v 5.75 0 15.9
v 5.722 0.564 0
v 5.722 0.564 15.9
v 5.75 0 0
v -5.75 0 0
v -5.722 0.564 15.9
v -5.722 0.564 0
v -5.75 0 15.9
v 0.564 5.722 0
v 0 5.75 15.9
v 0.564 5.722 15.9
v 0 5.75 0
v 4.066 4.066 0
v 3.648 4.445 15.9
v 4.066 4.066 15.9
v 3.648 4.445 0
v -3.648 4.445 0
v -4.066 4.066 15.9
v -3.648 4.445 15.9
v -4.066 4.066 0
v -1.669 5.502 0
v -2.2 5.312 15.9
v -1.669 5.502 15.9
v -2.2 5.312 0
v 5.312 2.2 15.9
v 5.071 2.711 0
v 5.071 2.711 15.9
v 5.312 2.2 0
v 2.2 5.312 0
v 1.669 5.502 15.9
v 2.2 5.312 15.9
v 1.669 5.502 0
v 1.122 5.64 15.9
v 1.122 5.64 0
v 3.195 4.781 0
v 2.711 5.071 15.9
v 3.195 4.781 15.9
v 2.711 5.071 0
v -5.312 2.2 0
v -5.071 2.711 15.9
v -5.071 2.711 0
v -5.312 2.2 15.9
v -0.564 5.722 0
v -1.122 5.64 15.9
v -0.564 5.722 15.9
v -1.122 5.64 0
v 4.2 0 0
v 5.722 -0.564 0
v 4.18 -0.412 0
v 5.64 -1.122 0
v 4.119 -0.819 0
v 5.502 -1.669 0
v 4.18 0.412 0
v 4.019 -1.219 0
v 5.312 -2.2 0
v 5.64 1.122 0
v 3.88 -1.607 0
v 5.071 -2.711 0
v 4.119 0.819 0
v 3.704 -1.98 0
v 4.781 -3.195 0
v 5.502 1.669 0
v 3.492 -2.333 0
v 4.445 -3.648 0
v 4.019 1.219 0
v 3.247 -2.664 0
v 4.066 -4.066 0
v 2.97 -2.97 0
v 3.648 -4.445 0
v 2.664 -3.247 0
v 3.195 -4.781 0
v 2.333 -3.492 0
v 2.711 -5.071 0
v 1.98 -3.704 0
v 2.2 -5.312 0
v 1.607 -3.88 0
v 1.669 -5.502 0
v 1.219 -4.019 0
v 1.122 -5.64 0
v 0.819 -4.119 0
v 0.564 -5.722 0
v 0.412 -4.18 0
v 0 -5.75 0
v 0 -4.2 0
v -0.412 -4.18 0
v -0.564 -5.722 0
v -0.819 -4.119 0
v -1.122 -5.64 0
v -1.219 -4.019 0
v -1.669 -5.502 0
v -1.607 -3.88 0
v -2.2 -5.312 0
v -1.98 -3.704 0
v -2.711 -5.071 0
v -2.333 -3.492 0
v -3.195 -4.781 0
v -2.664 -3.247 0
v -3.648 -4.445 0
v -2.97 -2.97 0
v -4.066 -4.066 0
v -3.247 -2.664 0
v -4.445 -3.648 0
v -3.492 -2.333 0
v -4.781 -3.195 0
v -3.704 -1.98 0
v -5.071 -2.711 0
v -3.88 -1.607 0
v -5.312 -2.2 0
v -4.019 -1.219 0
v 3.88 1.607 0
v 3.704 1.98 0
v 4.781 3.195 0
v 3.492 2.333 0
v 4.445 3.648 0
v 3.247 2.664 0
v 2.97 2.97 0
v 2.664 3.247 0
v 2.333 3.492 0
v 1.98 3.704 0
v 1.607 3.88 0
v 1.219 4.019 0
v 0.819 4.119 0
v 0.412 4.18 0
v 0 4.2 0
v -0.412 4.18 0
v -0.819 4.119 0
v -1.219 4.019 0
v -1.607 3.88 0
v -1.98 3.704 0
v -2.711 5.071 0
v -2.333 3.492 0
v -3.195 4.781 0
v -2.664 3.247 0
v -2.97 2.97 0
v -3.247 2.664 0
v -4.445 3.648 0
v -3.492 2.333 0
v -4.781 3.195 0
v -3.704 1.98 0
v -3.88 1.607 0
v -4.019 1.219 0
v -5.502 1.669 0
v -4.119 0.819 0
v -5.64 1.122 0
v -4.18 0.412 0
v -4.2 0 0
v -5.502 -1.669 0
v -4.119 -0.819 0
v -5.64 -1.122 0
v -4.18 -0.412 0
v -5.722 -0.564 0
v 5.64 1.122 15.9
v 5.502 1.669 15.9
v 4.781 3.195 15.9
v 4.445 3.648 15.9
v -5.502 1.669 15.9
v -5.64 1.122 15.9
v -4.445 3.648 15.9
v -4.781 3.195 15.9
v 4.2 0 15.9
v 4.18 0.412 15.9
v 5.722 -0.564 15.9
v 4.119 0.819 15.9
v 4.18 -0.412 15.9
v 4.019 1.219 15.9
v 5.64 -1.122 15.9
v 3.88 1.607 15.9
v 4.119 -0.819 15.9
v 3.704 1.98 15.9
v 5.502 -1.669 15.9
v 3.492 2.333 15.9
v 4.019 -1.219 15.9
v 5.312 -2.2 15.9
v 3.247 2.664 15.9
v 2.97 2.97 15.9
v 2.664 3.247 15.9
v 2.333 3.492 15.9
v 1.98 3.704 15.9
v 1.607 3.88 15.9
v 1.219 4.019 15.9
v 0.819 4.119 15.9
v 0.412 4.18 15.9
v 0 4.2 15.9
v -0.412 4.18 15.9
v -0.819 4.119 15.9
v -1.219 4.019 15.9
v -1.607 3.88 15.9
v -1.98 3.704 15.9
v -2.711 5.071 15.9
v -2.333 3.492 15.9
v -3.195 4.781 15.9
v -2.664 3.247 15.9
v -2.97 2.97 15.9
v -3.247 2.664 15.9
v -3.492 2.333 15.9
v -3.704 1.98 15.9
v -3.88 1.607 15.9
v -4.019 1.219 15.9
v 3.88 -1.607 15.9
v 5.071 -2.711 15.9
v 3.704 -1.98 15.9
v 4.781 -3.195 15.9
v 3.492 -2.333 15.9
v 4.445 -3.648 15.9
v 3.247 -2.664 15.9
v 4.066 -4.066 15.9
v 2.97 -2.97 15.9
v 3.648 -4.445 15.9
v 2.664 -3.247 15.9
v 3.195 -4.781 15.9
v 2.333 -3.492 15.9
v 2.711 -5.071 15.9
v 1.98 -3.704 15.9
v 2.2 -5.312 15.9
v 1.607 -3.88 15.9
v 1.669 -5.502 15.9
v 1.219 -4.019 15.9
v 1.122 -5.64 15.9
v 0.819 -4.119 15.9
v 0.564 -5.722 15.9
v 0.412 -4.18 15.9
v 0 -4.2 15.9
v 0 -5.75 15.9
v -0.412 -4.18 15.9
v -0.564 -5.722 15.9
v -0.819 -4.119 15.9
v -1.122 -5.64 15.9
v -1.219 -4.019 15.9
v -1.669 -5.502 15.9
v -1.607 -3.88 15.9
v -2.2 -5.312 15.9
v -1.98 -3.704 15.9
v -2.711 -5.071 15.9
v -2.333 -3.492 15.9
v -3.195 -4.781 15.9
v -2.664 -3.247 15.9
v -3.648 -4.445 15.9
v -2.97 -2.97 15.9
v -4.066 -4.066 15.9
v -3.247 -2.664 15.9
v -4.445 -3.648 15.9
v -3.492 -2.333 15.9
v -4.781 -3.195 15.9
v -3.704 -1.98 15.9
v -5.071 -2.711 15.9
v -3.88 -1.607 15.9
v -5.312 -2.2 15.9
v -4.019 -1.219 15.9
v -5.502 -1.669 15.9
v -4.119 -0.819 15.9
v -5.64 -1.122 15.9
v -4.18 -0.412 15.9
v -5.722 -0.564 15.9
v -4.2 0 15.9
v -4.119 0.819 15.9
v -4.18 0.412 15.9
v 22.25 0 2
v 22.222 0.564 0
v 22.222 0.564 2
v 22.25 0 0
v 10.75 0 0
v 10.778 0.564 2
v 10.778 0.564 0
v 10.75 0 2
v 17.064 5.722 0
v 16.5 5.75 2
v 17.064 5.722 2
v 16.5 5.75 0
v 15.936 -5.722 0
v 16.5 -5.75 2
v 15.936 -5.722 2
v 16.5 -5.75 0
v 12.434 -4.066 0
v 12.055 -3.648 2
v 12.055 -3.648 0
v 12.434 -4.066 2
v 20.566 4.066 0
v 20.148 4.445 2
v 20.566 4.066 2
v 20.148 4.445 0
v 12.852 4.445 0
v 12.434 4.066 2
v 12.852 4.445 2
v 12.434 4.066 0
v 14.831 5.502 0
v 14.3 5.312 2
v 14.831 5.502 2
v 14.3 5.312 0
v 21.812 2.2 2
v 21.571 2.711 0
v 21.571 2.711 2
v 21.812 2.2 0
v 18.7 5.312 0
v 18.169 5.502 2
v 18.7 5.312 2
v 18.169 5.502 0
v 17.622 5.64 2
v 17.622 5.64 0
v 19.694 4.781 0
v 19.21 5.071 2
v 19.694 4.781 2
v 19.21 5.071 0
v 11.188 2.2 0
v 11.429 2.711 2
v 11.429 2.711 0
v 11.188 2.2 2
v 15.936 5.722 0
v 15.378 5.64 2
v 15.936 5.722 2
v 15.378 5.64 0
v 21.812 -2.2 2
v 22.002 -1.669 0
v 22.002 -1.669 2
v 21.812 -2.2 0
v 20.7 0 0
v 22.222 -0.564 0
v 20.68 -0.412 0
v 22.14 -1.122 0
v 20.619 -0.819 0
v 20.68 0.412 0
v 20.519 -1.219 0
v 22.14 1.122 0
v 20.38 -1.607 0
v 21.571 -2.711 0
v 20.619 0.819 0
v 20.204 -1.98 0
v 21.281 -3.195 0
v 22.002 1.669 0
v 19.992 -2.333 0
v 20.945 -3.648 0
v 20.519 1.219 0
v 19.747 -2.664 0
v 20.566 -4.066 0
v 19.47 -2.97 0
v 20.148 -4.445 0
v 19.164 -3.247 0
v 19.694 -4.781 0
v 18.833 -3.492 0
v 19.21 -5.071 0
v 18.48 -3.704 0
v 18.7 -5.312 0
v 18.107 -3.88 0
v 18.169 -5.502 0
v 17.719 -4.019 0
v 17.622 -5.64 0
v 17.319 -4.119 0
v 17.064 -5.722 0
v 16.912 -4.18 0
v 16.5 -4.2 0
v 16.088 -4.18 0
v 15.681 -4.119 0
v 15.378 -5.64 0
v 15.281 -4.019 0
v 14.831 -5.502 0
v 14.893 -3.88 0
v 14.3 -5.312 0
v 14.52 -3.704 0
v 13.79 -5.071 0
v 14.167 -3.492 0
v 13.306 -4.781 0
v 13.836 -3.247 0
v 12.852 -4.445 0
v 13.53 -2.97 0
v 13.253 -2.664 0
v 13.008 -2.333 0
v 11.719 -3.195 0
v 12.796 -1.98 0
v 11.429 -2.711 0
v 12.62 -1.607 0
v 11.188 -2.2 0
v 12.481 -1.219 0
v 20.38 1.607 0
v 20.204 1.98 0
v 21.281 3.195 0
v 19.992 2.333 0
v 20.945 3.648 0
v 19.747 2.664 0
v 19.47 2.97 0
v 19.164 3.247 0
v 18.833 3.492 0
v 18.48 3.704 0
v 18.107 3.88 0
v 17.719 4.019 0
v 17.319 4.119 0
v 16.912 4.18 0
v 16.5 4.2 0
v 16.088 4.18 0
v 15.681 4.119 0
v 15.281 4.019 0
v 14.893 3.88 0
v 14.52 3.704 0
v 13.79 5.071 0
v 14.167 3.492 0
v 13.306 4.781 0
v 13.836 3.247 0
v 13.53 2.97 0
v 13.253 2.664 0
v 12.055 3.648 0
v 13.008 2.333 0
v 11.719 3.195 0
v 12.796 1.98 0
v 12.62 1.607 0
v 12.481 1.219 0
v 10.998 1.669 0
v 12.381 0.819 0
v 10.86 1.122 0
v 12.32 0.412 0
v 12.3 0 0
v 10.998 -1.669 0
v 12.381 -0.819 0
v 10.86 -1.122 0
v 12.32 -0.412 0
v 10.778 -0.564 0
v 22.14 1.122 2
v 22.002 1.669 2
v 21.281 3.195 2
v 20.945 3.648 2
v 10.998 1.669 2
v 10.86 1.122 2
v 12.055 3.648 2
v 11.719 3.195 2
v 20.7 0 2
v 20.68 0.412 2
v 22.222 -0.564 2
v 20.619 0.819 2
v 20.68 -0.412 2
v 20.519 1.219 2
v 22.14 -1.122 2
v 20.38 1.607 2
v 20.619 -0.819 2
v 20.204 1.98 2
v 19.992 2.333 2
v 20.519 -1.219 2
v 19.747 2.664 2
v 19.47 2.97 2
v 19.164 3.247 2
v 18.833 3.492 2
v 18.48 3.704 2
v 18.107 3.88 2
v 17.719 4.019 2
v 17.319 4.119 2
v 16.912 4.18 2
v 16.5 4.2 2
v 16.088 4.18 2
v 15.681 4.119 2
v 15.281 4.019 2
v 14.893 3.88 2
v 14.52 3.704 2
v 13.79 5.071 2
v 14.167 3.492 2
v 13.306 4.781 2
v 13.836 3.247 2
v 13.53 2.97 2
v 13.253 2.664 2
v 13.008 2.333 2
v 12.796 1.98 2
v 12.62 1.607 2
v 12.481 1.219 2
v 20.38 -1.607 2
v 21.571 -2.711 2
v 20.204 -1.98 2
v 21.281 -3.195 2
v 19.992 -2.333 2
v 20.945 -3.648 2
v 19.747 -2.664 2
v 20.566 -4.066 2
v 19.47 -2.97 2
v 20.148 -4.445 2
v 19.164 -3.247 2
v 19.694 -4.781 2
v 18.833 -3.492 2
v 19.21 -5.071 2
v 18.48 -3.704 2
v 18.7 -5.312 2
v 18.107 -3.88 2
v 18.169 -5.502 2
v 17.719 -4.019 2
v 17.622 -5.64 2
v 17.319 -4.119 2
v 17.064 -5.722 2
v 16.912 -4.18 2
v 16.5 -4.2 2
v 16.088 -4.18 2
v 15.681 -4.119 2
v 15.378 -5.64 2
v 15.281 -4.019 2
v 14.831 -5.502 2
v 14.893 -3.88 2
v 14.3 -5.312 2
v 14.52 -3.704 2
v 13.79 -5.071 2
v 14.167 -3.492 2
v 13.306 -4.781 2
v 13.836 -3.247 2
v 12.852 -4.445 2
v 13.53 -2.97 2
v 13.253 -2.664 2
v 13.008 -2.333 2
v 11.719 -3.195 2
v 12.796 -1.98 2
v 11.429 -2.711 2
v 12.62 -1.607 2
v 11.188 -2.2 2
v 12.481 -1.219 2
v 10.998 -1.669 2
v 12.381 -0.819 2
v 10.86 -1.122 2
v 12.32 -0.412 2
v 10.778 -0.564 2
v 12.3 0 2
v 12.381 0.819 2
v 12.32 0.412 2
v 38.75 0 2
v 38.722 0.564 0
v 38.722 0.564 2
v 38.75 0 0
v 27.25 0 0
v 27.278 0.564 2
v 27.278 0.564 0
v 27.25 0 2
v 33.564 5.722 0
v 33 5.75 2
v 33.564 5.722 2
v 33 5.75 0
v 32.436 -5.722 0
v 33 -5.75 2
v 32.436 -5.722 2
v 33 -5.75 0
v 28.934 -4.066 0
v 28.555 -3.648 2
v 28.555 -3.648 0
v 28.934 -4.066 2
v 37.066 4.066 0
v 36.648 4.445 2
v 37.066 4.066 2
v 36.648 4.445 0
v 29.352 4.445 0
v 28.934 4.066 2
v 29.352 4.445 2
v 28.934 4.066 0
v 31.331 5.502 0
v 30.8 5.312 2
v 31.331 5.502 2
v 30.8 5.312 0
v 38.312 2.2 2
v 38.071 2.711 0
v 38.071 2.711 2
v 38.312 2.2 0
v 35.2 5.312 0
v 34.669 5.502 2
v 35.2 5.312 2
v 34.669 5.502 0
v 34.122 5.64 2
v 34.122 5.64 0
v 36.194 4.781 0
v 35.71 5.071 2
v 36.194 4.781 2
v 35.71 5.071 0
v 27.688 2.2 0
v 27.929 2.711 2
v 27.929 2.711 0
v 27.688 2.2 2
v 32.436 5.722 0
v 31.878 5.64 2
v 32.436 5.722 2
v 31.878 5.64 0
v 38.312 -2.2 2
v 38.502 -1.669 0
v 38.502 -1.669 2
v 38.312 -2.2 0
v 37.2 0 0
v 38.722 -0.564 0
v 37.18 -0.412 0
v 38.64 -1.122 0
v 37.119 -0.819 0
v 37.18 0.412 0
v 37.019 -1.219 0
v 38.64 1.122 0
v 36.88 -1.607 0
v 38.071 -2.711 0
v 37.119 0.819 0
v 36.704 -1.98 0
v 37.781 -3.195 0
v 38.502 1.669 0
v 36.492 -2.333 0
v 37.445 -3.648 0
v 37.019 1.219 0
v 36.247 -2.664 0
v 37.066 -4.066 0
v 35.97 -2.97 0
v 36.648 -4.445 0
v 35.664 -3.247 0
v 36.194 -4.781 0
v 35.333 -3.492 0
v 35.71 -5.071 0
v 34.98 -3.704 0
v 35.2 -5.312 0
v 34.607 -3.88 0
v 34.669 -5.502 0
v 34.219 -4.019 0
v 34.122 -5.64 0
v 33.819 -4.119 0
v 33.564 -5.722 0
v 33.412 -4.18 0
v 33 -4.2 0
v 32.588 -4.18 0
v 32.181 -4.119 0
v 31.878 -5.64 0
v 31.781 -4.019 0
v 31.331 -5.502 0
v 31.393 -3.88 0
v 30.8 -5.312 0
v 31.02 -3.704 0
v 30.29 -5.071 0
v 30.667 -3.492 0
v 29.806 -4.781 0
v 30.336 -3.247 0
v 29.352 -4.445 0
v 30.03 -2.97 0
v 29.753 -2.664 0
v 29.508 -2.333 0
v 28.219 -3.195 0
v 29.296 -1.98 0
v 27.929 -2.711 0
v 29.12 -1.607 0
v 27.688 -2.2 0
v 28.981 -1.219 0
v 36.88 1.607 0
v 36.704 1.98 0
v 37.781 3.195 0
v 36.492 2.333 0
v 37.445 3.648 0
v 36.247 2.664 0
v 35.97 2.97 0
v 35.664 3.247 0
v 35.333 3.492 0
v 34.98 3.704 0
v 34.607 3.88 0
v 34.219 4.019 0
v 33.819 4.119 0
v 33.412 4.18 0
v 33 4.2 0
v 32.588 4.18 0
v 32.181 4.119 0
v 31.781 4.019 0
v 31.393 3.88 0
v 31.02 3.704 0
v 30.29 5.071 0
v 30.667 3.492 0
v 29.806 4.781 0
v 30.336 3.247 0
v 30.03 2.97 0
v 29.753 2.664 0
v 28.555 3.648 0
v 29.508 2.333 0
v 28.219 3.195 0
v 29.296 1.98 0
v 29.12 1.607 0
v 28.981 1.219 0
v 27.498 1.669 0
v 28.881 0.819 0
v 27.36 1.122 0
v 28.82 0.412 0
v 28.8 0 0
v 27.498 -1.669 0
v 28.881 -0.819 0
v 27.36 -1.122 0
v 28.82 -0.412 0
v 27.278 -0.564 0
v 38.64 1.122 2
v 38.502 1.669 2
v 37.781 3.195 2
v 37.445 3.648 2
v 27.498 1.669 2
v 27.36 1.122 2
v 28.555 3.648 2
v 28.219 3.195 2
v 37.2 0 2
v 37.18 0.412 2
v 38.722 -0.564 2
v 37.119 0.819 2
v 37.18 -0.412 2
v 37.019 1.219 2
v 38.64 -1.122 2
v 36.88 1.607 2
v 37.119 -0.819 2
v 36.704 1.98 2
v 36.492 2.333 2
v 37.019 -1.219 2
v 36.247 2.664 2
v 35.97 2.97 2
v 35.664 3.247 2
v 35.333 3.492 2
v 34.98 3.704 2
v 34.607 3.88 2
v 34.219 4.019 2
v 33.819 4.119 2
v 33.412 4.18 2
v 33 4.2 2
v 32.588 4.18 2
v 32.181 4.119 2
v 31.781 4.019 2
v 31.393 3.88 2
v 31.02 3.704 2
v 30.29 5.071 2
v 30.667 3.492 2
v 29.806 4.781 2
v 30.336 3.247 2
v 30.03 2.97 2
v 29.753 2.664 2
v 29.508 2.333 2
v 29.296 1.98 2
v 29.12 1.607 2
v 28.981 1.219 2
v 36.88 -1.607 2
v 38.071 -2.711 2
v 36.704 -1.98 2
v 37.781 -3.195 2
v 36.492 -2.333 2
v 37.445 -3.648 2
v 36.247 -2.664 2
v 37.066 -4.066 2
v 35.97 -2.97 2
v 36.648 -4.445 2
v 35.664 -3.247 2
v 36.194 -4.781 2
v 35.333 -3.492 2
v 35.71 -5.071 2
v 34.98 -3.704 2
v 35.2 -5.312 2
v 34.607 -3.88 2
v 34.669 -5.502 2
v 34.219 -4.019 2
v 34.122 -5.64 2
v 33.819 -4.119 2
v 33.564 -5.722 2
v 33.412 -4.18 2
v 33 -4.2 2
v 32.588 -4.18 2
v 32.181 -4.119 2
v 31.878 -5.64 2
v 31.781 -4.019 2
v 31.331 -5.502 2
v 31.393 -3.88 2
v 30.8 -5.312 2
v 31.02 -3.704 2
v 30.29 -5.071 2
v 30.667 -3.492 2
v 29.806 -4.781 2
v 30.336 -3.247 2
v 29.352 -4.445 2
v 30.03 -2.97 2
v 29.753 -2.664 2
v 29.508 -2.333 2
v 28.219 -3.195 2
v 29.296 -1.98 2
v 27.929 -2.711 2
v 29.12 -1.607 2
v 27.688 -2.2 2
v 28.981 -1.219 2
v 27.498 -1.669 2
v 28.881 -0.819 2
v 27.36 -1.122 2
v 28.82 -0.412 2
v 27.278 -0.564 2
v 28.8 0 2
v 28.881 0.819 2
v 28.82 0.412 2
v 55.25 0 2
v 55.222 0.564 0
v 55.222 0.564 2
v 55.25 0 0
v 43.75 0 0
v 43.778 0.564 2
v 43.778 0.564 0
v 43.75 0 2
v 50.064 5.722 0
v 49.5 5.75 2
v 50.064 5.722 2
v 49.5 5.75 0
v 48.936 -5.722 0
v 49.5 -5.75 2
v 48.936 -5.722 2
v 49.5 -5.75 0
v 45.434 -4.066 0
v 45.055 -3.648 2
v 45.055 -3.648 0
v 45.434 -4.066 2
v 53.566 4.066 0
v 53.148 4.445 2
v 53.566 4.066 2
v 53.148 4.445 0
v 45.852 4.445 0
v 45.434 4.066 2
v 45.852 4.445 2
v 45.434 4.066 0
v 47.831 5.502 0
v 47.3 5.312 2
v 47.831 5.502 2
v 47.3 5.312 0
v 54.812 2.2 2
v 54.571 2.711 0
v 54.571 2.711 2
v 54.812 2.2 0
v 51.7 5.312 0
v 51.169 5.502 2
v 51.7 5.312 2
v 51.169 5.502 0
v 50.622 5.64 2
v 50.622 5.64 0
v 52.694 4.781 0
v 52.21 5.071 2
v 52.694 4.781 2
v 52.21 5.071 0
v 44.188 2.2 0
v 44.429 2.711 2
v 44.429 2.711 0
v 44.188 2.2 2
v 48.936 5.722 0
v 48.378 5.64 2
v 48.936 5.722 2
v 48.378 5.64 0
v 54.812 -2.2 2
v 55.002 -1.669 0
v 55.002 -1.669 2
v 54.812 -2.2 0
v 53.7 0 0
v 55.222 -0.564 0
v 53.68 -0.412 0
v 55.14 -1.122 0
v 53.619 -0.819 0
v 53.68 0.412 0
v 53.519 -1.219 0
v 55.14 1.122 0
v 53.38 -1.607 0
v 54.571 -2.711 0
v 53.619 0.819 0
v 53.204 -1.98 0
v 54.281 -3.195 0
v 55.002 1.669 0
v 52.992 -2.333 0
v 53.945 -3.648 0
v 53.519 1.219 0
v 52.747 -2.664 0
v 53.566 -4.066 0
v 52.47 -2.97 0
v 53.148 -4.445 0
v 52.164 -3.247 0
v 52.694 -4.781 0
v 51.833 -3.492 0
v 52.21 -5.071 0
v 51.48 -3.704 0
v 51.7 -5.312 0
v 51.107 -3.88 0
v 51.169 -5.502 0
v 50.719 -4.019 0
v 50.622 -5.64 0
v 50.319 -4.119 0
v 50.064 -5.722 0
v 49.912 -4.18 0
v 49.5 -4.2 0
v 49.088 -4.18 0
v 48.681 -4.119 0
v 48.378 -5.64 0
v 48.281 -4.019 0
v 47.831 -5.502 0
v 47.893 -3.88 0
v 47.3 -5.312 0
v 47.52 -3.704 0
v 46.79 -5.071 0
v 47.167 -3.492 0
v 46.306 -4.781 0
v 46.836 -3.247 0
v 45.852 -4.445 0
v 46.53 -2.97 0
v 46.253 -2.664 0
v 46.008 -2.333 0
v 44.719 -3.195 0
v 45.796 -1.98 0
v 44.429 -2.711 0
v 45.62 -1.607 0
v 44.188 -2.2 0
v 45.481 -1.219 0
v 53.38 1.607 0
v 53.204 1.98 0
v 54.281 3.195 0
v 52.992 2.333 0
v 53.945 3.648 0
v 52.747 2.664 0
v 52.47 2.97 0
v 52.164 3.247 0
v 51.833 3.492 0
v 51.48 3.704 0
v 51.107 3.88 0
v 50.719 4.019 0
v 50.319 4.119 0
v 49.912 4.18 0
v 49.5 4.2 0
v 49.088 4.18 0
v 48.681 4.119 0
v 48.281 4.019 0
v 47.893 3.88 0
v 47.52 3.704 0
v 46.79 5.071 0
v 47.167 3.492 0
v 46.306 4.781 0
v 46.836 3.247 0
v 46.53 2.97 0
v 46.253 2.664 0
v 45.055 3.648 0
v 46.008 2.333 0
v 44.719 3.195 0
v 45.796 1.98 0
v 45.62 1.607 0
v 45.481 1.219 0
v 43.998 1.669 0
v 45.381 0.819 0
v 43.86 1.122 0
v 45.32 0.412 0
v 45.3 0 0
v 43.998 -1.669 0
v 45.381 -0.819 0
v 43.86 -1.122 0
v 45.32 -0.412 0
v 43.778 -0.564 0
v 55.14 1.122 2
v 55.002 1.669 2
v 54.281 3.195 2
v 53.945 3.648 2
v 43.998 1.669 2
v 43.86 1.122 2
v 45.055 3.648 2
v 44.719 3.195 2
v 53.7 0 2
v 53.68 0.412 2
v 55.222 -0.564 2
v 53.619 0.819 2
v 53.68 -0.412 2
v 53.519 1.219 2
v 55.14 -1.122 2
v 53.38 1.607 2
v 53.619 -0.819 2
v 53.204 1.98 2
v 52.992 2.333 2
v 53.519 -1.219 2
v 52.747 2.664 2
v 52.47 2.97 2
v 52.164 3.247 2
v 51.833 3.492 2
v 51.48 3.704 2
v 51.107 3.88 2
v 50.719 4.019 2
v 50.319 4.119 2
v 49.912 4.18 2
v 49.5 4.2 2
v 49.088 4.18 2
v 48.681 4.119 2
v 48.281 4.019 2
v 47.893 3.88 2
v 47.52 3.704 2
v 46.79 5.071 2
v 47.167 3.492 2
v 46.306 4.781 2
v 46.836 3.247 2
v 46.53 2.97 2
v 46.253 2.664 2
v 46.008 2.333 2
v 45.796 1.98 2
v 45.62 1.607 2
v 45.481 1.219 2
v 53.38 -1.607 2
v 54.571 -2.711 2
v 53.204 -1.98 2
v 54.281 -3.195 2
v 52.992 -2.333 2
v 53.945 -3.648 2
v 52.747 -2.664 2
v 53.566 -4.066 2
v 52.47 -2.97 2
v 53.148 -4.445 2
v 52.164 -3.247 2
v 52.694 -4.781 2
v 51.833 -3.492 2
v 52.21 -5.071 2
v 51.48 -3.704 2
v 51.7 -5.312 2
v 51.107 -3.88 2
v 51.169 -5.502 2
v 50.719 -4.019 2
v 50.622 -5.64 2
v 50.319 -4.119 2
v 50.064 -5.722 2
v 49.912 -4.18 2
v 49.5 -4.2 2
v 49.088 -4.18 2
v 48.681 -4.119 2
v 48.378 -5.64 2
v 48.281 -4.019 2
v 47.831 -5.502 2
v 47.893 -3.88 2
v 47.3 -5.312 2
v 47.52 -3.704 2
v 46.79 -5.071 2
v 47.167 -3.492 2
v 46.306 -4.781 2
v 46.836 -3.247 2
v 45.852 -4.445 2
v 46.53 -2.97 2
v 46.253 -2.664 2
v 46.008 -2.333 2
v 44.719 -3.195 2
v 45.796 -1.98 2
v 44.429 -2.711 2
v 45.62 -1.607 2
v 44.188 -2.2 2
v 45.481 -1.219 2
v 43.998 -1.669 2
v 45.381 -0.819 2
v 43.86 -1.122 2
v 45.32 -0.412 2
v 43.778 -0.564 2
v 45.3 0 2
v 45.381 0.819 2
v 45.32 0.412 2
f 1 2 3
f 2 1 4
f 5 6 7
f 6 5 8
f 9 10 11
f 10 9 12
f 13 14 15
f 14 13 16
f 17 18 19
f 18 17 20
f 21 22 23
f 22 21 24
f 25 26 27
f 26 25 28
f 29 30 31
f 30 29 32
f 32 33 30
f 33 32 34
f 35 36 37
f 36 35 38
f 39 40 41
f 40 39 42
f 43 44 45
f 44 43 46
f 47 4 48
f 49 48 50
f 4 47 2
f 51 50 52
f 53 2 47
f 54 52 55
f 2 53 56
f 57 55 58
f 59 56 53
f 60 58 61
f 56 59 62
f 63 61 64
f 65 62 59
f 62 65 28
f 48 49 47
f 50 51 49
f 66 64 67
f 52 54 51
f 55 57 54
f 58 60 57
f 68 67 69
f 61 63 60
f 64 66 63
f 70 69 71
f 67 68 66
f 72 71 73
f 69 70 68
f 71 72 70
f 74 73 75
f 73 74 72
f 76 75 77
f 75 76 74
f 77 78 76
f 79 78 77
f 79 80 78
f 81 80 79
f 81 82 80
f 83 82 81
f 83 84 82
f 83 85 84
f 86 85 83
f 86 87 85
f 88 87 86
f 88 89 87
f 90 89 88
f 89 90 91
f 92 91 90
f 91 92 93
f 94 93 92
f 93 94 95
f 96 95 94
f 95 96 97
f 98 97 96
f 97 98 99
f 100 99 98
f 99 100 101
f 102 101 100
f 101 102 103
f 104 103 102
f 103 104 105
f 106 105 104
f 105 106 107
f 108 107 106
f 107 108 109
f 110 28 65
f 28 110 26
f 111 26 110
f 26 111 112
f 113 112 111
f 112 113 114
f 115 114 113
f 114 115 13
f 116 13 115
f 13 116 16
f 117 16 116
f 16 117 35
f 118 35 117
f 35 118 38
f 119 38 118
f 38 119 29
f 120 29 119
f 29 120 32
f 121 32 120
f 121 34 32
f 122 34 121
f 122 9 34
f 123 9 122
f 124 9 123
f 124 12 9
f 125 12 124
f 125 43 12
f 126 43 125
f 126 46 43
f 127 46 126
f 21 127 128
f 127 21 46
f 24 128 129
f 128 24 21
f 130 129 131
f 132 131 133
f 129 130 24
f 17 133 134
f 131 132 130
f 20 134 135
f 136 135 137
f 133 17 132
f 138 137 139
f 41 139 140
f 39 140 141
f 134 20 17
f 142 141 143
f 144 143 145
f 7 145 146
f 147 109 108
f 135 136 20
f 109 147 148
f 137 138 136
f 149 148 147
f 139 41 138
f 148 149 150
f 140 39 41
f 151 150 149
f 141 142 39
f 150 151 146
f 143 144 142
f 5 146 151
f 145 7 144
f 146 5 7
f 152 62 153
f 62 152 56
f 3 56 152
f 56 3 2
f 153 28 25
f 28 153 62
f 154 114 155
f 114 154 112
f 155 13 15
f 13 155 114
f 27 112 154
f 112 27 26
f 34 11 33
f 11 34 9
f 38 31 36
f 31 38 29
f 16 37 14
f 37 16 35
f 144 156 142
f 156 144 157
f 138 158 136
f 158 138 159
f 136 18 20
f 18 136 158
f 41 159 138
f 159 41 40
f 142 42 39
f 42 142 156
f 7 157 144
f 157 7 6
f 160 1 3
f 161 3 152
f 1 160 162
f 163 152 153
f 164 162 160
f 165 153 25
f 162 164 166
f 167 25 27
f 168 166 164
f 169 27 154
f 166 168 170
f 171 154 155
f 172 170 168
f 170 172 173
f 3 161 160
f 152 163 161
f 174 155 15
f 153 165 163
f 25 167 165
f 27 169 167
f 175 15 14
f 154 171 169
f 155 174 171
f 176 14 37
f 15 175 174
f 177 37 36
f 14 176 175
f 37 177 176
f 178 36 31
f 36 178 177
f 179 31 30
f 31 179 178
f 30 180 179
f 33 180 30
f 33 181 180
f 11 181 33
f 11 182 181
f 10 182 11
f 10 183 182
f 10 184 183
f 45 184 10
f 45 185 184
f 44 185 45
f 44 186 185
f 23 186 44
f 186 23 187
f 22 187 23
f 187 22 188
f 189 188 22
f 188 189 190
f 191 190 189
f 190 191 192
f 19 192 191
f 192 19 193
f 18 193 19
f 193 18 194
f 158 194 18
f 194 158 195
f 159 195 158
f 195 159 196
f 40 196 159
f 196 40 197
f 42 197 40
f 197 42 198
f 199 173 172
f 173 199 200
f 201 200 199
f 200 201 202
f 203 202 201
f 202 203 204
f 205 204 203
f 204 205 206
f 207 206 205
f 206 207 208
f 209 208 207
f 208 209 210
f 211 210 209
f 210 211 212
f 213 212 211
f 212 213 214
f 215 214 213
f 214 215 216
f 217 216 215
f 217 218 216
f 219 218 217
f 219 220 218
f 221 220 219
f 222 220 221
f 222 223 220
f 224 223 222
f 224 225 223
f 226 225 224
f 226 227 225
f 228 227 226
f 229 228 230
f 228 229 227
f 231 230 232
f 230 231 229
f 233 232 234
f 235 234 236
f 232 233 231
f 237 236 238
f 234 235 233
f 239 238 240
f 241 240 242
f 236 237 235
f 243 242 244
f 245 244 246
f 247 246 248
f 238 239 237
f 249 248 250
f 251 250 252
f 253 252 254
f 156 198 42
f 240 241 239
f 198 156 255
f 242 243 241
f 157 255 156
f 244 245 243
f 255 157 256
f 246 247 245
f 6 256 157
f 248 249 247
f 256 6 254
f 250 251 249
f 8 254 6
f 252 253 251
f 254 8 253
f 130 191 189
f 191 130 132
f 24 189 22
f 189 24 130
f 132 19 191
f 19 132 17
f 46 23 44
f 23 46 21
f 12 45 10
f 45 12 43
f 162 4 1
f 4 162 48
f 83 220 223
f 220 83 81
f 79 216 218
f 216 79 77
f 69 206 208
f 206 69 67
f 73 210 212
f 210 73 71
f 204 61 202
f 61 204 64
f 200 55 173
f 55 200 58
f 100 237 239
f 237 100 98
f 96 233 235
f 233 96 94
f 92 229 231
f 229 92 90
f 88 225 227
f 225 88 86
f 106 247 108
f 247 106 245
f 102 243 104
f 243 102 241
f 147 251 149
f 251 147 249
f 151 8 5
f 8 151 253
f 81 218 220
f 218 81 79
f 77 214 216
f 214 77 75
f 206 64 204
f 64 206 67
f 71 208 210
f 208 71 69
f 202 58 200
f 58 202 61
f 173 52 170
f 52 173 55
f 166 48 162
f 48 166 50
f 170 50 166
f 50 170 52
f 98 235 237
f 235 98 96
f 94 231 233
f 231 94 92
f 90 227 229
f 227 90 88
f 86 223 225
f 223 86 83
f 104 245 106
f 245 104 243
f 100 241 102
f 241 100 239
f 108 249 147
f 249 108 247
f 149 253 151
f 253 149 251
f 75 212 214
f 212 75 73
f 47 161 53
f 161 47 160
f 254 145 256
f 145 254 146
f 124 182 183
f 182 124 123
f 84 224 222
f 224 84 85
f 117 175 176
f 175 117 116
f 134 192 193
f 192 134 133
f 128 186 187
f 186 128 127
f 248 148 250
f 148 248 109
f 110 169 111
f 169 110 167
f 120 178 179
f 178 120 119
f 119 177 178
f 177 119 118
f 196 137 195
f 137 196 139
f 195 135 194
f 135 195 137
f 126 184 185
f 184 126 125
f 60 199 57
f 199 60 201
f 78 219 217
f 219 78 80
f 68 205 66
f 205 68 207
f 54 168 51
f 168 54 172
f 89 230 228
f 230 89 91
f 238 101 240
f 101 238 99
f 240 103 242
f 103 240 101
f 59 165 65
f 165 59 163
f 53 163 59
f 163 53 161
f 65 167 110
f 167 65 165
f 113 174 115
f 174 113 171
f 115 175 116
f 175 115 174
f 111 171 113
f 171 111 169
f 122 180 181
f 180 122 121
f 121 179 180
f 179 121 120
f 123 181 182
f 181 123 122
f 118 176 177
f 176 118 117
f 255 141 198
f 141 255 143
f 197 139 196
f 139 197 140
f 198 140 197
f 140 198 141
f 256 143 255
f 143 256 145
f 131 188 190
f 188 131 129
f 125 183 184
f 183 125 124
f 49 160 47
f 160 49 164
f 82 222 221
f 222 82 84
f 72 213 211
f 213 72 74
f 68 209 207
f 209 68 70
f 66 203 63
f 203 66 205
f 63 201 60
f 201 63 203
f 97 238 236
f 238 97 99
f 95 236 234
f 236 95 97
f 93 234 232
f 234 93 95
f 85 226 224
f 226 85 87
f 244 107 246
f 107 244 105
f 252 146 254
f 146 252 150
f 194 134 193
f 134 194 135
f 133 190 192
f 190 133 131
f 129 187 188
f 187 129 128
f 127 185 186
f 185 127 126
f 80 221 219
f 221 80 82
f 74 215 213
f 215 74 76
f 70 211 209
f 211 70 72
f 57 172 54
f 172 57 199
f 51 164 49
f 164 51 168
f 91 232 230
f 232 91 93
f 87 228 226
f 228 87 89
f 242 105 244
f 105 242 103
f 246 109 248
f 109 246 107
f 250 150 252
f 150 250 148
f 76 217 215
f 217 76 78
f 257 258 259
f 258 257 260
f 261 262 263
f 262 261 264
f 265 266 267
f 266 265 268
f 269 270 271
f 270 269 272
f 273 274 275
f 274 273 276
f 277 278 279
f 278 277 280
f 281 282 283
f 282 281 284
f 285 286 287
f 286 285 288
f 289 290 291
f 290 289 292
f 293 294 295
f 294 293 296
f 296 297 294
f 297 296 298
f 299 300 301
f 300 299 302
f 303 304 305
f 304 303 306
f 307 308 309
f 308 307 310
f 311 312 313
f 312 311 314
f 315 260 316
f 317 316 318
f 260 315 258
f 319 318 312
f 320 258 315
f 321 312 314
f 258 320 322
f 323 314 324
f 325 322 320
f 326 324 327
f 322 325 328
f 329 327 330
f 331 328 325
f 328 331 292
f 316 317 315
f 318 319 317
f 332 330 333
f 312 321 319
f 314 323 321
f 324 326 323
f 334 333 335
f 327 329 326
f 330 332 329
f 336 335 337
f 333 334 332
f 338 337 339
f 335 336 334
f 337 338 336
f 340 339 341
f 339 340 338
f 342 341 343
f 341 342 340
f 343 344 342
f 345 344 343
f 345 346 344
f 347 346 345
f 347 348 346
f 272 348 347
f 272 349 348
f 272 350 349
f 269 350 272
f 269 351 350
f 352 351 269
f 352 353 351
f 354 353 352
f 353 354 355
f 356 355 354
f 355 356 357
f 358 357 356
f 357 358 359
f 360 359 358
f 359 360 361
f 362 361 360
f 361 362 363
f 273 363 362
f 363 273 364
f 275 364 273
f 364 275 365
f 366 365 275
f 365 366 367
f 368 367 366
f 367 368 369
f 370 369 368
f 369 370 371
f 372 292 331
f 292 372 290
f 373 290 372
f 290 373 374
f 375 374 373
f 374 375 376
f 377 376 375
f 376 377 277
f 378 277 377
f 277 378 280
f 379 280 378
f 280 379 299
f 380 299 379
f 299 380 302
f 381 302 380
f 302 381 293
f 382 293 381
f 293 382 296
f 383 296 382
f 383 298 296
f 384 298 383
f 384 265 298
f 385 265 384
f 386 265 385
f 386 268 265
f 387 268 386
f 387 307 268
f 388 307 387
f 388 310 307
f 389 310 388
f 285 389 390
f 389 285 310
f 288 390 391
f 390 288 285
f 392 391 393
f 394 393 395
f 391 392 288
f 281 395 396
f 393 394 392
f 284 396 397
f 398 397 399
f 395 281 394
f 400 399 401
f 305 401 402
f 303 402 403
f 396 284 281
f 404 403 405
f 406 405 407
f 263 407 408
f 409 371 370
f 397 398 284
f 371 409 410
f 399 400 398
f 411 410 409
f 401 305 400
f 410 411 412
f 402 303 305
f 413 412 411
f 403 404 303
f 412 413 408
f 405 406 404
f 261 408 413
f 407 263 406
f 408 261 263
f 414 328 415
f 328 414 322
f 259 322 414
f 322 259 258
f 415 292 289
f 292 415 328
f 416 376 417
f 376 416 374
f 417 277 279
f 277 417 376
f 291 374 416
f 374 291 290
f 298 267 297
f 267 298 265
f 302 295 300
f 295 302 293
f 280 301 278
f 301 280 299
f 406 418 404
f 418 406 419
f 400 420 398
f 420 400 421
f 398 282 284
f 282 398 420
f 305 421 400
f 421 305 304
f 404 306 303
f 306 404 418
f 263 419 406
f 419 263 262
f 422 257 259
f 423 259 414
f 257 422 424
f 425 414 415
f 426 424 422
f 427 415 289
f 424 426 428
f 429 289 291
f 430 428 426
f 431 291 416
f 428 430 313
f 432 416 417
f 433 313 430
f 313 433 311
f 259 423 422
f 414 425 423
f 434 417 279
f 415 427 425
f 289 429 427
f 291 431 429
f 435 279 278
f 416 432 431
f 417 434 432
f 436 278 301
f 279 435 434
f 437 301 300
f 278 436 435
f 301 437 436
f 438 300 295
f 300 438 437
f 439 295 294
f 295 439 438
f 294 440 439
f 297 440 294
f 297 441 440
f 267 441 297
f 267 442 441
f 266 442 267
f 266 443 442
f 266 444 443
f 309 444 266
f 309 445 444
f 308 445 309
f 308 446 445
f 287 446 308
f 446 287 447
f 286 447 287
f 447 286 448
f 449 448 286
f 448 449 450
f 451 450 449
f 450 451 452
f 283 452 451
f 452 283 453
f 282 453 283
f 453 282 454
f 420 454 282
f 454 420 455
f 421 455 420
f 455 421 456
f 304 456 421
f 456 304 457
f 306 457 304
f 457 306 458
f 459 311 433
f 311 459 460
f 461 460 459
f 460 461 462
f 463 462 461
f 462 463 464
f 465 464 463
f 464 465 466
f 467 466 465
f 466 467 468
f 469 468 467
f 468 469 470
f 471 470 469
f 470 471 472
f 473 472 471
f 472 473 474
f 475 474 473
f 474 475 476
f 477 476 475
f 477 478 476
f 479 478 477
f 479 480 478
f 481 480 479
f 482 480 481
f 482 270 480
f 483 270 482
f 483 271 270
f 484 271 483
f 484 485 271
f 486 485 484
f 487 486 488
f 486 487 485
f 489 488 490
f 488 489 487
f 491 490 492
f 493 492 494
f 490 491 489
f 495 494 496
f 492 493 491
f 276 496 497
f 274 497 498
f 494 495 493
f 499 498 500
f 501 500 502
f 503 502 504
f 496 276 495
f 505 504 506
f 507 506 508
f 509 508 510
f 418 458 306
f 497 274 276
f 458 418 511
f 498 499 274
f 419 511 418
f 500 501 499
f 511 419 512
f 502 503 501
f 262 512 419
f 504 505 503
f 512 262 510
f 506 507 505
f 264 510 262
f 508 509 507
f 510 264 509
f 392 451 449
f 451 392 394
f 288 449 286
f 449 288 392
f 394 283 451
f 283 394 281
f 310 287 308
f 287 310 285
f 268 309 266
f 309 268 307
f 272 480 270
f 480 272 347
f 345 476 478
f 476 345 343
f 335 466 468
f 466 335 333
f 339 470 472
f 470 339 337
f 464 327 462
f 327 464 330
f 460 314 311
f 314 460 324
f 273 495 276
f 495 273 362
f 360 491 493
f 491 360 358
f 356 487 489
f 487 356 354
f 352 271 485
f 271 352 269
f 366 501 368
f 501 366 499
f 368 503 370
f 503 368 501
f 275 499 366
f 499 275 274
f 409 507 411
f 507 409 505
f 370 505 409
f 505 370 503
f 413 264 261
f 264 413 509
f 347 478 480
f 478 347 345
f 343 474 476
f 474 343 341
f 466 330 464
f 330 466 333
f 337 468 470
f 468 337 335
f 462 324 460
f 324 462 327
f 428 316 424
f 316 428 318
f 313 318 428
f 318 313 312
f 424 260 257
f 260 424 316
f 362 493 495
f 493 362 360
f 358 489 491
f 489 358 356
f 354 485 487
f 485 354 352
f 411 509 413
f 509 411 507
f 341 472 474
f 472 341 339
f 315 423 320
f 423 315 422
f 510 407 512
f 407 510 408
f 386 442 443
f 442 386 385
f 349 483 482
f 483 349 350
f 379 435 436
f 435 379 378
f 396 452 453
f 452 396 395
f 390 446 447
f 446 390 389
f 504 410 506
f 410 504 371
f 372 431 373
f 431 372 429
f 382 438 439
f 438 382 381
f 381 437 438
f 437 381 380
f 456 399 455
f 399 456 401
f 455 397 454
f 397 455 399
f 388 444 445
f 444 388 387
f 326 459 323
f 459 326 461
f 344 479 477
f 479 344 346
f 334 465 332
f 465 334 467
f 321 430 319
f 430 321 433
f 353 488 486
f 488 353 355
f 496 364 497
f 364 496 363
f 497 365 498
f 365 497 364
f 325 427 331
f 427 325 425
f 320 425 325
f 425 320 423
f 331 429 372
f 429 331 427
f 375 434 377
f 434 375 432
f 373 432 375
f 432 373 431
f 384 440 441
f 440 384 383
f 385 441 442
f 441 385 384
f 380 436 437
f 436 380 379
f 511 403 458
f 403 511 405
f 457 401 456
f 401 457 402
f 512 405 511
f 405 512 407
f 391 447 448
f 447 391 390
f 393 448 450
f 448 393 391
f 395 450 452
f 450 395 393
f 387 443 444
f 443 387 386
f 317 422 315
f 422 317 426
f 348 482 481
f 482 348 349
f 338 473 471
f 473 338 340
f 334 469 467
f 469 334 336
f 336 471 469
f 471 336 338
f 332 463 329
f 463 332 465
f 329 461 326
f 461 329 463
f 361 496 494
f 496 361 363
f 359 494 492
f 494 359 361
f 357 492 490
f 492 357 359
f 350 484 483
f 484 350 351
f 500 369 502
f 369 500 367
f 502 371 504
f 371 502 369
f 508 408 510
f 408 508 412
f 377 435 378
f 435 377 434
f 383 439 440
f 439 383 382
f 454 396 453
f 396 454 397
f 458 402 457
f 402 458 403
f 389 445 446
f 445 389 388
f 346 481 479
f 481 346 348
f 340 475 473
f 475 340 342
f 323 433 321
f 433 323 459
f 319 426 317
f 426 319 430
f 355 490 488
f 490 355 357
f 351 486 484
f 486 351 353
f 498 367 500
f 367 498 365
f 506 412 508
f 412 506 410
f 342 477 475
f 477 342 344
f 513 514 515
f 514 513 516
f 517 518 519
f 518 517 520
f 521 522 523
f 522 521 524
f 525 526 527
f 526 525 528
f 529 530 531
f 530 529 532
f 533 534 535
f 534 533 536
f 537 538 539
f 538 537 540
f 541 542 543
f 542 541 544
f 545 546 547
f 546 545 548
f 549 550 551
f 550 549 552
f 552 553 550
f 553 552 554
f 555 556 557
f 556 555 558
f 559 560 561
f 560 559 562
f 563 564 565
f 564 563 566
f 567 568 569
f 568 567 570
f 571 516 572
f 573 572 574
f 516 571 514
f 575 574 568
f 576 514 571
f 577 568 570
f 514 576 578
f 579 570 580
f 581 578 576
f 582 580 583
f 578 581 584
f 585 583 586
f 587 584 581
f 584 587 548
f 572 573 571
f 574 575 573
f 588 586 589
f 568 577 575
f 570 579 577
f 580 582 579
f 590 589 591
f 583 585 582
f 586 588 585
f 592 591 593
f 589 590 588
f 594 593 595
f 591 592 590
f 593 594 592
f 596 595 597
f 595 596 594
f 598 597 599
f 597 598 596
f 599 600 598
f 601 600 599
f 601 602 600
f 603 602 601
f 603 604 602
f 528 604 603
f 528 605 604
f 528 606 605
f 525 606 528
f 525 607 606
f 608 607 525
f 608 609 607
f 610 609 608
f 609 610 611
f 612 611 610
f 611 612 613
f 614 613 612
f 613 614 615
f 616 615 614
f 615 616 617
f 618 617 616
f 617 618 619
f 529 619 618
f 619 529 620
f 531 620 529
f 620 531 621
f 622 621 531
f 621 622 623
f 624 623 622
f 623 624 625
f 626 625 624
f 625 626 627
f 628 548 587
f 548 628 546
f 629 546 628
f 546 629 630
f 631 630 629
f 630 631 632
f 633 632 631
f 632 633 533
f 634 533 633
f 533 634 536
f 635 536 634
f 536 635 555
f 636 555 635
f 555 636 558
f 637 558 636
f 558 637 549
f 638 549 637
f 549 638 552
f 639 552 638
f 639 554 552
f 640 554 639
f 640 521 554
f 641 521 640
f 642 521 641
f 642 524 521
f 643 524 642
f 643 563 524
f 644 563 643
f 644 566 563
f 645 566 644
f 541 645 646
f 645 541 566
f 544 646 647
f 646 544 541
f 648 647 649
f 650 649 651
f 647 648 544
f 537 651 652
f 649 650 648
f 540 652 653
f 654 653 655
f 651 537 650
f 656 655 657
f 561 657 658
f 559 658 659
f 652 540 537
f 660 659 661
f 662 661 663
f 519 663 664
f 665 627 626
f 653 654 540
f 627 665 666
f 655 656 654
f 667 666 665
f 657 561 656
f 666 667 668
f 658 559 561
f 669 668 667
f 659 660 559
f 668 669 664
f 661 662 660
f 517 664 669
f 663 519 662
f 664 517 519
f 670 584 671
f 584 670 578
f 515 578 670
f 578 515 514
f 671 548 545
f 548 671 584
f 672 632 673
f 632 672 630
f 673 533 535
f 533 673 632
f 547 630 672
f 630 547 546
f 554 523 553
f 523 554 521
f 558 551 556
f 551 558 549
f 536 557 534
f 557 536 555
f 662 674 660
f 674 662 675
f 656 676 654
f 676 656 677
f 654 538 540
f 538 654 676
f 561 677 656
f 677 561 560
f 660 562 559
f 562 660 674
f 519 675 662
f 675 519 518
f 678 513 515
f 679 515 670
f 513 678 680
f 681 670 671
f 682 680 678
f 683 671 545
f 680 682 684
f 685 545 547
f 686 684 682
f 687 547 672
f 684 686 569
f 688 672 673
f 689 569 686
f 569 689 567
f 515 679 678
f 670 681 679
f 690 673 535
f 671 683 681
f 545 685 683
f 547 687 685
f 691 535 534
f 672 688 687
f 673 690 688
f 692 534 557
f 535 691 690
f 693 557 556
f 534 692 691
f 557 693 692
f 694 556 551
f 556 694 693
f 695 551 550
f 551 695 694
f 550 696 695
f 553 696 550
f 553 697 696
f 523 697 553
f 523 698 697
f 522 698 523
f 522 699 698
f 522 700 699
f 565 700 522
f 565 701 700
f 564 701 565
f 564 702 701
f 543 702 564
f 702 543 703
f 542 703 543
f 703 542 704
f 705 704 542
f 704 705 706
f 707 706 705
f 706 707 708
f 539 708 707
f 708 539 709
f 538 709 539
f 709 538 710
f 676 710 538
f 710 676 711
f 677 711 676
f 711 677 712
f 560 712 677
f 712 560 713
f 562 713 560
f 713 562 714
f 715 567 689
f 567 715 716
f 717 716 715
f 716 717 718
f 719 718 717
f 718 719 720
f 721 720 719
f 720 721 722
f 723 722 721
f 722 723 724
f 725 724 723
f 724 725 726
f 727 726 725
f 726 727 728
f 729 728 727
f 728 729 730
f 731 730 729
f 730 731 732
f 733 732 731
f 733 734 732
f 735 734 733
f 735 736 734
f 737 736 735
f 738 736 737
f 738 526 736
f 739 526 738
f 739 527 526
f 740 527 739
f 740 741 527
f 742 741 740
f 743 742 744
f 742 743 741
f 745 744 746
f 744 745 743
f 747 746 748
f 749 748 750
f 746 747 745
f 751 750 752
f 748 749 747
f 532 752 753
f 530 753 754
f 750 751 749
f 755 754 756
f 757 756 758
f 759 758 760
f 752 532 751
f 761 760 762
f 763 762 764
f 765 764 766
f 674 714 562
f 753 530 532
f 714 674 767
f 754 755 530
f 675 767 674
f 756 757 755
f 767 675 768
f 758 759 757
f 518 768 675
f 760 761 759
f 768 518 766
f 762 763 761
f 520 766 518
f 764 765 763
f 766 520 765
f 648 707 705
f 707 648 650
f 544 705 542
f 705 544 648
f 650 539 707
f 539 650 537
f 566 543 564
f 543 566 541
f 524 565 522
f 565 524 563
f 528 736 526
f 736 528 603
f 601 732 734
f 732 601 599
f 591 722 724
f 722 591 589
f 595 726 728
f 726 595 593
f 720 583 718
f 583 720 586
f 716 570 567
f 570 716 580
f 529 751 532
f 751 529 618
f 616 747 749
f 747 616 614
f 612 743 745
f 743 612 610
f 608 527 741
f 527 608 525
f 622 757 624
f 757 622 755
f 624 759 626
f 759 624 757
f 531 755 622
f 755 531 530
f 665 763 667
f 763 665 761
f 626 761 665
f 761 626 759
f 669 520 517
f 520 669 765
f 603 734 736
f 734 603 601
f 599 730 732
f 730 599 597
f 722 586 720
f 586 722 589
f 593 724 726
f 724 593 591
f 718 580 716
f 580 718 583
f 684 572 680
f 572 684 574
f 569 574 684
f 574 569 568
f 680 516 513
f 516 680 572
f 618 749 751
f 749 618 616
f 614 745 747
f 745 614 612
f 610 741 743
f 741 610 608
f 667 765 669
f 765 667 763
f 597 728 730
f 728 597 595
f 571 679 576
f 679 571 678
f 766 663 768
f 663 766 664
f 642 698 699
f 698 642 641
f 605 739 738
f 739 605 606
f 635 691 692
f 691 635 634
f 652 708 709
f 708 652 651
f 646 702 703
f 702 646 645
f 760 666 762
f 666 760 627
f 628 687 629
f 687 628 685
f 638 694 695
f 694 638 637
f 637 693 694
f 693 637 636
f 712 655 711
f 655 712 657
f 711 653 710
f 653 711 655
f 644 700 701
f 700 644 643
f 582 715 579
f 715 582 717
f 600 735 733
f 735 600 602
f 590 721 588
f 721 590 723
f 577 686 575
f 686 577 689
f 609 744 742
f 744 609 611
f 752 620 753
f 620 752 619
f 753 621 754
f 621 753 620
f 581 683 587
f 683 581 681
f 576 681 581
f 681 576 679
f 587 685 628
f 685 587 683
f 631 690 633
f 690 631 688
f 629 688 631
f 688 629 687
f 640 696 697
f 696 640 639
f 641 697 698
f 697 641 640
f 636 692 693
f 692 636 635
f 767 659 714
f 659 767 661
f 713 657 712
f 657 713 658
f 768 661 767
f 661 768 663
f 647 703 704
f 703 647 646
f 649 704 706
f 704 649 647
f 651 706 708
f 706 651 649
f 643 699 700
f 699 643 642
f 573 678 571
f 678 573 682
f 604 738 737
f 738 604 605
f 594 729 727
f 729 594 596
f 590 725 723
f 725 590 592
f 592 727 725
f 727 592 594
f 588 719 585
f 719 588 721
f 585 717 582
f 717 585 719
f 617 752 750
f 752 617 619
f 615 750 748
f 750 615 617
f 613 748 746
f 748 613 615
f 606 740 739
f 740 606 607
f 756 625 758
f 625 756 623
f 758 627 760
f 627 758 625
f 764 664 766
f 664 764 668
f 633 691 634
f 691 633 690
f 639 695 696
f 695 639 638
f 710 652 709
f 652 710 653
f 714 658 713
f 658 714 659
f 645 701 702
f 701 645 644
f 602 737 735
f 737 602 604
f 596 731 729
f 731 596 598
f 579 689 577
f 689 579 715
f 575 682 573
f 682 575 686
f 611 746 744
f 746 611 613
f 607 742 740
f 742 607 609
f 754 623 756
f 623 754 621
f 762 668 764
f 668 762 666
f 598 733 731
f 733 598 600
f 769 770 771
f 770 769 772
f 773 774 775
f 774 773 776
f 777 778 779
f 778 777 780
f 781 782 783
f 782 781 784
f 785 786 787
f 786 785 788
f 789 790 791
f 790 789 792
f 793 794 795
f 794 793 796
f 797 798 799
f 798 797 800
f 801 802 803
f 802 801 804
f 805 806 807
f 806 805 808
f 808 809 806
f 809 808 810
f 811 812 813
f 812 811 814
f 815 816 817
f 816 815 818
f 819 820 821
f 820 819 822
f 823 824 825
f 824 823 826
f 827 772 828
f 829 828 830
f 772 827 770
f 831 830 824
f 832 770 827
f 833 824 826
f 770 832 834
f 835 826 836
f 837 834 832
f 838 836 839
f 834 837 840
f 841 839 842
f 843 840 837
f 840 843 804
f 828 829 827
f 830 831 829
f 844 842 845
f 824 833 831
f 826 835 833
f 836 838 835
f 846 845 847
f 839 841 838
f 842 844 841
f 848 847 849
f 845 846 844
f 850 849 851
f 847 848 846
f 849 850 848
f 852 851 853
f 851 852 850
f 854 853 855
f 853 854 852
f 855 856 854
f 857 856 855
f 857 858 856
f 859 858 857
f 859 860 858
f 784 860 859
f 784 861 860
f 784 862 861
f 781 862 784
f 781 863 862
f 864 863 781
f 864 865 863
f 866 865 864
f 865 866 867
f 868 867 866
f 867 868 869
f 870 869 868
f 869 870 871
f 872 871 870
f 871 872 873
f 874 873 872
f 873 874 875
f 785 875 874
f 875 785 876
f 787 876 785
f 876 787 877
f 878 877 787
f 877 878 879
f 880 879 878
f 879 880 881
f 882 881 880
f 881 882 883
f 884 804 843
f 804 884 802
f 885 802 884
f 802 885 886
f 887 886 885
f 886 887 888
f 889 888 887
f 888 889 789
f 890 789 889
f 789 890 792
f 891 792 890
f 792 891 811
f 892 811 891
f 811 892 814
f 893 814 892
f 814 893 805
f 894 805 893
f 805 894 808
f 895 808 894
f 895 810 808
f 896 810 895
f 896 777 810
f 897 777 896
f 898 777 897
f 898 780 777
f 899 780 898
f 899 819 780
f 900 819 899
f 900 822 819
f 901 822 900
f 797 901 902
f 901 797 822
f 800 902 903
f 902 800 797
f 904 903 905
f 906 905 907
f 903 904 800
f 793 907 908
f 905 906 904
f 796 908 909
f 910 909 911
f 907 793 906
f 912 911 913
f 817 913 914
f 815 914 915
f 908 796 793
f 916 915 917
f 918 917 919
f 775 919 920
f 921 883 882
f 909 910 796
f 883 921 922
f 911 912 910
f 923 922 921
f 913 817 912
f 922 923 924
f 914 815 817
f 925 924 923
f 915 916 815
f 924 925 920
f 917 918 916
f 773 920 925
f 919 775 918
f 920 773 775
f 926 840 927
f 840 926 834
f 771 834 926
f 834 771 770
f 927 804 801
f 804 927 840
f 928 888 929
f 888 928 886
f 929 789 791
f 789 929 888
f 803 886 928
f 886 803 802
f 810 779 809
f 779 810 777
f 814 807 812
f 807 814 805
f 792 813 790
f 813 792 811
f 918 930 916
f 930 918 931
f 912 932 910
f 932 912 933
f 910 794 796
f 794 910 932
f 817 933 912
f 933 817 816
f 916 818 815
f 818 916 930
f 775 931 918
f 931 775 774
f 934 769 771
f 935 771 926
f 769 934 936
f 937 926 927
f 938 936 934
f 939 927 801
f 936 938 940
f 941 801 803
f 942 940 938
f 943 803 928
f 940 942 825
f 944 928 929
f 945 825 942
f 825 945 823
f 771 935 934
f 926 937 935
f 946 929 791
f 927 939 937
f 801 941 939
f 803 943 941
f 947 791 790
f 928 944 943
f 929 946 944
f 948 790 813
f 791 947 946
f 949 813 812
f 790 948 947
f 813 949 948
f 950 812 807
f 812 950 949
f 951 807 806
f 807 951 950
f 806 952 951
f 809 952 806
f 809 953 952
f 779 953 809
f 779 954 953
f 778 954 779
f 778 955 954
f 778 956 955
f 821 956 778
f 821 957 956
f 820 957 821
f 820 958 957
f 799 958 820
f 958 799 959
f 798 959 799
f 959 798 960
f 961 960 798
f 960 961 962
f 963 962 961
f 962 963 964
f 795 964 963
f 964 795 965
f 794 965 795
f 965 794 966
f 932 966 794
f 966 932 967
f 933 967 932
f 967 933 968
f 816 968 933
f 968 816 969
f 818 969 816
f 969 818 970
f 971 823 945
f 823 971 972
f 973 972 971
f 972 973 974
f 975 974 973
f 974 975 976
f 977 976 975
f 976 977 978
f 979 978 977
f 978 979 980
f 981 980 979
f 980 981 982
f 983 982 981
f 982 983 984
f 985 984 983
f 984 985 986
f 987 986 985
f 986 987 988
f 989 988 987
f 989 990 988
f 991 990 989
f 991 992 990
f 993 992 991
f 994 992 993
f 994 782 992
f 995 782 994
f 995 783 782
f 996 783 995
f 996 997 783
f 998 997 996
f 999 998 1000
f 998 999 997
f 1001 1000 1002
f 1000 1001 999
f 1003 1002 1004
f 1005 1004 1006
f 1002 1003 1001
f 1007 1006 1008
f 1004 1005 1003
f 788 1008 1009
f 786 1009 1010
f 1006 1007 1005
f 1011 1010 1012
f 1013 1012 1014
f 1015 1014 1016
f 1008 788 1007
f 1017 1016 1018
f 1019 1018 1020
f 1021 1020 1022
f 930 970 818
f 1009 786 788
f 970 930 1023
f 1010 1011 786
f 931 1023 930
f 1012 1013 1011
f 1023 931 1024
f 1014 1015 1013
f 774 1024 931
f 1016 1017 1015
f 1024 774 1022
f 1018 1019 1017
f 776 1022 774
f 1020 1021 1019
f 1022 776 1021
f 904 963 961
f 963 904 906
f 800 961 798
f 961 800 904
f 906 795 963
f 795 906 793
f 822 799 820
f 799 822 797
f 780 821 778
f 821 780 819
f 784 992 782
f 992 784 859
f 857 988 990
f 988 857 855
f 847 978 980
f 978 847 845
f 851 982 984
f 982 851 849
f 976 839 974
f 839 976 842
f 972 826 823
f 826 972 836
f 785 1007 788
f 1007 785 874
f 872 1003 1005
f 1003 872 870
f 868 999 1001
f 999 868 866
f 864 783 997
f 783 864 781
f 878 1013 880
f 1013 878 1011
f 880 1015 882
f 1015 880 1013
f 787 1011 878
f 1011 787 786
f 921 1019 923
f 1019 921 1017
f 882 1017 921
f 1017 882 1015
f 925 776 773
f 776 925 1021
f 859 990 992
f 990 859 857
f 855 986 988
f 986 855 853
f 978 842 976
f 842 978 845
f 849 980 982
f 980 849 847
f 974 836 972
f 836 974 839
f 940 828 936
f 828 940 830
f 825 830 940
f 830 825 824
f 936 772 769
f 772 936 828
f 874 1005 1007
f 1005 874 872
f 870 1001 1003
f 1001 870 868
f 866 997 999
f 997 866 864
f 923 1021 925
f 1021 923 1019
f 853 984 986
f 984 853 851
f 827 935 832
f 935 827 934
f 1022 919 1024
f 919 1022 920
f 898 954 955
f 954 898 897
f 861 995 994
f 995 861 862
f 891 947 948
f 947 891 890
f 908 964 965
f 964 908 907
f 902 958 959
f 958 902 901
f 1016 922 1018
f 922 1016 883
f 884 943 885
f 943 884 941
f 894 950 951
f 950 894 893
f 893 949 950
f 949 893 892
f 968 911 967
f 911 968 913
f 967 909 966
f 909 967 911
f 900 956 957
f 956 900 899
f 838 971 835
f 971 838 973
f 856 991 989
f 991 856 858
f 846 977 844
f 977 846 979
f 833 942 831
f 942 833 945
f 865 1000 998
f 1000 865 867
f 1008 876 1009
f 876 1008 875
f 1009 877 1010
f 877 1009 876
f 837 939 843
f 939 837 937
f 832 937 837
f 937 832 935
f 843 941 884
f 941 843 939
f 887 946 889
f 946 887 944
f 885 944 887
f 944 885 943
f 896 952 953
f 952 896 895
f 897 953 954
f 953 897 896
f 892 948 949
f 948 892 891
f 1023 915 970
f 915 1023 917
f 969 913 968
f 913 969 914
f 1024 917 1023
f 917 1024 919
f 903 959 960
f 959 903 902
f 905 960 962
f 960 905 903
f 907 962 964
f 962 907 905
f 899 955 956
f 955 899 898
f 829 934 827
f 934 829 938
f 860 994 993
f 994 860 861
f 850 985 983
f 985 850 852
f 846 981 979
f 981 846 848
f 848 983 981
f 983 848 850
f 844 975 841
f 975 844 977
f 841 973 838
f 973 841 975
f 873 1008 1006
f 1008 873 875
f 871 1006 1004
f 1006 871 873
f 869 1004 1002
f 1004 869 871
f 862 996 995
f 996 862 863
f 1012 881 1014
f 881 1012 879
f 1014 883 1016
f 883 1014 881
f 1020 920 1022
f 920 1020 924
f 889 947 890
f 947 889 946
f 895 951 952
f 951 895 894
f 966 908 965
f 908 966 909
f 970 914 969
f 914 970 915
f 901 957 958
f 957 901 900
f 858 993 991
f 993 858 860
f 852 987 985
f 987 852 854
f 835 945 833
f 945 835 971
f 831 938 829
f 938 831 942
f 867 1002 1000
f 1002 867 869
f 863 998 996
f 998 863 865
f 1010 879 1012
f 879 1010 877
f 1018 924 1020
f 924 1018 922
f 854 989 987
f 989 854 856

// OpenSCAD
// ==========================================
// Proyecto: piezas3D – Puntero láser estelar
// Componente: Separador de azimut y arandelas de contacto
// Descripción: Separador entre los aros interiores de los dos 608 de azimut (0,1 mm más corto que
//              el resalte de la base, para precargarlos) y 3 arandelas de contacto que apoyan solo
//              en el aro interior: entre la plataforma y el 608 superior, entre la autoblocante y
//              el 608 inferior, y en el eje de altura del lado del cable.
// ==========================================

// --- PARÁMETROS Y CONSTANTES ---
include <puntero_laser_parametros.scad>

/* [Hidden] */
d_ext_separador = d_contacto_aro;
d_agujero_m8 = rod608_d_int + holgura_perno_m8;
separacion_piezas = 5;
cantidad_arandelas = 3;

// --- MÓDULOS PRINCIPALES Y ENSAMBLAJE ---
ensamblaje_principal();

module ensamblaje_principal() {
    pieza_separador_azimut();
}

module pieza_separador_azimut() {
    separador();
    for (i = [1:cantidad_arandelas])
        translate([i*(d_ext_separador + separacion_piezas), 0, 0]) arandela_contacto();
}

module separador() {
    difference() {
        cylinder(d = d_ext_separador, h = largo_separador_azimut);
        translate([0, 0, -1]) cylinder(d = d_agujero_m8, h = largo_separador_azimut + 2);
    }
}

module arandela_contacto() {
    difference() {
        cylinder(d = d_contacto_aro, h = alto_arandela_contacto);
        translate([0, 0, -1]) cylinder(d = d_agujero_m8, h = alto_arandela_contacto + 2);
    }
}
